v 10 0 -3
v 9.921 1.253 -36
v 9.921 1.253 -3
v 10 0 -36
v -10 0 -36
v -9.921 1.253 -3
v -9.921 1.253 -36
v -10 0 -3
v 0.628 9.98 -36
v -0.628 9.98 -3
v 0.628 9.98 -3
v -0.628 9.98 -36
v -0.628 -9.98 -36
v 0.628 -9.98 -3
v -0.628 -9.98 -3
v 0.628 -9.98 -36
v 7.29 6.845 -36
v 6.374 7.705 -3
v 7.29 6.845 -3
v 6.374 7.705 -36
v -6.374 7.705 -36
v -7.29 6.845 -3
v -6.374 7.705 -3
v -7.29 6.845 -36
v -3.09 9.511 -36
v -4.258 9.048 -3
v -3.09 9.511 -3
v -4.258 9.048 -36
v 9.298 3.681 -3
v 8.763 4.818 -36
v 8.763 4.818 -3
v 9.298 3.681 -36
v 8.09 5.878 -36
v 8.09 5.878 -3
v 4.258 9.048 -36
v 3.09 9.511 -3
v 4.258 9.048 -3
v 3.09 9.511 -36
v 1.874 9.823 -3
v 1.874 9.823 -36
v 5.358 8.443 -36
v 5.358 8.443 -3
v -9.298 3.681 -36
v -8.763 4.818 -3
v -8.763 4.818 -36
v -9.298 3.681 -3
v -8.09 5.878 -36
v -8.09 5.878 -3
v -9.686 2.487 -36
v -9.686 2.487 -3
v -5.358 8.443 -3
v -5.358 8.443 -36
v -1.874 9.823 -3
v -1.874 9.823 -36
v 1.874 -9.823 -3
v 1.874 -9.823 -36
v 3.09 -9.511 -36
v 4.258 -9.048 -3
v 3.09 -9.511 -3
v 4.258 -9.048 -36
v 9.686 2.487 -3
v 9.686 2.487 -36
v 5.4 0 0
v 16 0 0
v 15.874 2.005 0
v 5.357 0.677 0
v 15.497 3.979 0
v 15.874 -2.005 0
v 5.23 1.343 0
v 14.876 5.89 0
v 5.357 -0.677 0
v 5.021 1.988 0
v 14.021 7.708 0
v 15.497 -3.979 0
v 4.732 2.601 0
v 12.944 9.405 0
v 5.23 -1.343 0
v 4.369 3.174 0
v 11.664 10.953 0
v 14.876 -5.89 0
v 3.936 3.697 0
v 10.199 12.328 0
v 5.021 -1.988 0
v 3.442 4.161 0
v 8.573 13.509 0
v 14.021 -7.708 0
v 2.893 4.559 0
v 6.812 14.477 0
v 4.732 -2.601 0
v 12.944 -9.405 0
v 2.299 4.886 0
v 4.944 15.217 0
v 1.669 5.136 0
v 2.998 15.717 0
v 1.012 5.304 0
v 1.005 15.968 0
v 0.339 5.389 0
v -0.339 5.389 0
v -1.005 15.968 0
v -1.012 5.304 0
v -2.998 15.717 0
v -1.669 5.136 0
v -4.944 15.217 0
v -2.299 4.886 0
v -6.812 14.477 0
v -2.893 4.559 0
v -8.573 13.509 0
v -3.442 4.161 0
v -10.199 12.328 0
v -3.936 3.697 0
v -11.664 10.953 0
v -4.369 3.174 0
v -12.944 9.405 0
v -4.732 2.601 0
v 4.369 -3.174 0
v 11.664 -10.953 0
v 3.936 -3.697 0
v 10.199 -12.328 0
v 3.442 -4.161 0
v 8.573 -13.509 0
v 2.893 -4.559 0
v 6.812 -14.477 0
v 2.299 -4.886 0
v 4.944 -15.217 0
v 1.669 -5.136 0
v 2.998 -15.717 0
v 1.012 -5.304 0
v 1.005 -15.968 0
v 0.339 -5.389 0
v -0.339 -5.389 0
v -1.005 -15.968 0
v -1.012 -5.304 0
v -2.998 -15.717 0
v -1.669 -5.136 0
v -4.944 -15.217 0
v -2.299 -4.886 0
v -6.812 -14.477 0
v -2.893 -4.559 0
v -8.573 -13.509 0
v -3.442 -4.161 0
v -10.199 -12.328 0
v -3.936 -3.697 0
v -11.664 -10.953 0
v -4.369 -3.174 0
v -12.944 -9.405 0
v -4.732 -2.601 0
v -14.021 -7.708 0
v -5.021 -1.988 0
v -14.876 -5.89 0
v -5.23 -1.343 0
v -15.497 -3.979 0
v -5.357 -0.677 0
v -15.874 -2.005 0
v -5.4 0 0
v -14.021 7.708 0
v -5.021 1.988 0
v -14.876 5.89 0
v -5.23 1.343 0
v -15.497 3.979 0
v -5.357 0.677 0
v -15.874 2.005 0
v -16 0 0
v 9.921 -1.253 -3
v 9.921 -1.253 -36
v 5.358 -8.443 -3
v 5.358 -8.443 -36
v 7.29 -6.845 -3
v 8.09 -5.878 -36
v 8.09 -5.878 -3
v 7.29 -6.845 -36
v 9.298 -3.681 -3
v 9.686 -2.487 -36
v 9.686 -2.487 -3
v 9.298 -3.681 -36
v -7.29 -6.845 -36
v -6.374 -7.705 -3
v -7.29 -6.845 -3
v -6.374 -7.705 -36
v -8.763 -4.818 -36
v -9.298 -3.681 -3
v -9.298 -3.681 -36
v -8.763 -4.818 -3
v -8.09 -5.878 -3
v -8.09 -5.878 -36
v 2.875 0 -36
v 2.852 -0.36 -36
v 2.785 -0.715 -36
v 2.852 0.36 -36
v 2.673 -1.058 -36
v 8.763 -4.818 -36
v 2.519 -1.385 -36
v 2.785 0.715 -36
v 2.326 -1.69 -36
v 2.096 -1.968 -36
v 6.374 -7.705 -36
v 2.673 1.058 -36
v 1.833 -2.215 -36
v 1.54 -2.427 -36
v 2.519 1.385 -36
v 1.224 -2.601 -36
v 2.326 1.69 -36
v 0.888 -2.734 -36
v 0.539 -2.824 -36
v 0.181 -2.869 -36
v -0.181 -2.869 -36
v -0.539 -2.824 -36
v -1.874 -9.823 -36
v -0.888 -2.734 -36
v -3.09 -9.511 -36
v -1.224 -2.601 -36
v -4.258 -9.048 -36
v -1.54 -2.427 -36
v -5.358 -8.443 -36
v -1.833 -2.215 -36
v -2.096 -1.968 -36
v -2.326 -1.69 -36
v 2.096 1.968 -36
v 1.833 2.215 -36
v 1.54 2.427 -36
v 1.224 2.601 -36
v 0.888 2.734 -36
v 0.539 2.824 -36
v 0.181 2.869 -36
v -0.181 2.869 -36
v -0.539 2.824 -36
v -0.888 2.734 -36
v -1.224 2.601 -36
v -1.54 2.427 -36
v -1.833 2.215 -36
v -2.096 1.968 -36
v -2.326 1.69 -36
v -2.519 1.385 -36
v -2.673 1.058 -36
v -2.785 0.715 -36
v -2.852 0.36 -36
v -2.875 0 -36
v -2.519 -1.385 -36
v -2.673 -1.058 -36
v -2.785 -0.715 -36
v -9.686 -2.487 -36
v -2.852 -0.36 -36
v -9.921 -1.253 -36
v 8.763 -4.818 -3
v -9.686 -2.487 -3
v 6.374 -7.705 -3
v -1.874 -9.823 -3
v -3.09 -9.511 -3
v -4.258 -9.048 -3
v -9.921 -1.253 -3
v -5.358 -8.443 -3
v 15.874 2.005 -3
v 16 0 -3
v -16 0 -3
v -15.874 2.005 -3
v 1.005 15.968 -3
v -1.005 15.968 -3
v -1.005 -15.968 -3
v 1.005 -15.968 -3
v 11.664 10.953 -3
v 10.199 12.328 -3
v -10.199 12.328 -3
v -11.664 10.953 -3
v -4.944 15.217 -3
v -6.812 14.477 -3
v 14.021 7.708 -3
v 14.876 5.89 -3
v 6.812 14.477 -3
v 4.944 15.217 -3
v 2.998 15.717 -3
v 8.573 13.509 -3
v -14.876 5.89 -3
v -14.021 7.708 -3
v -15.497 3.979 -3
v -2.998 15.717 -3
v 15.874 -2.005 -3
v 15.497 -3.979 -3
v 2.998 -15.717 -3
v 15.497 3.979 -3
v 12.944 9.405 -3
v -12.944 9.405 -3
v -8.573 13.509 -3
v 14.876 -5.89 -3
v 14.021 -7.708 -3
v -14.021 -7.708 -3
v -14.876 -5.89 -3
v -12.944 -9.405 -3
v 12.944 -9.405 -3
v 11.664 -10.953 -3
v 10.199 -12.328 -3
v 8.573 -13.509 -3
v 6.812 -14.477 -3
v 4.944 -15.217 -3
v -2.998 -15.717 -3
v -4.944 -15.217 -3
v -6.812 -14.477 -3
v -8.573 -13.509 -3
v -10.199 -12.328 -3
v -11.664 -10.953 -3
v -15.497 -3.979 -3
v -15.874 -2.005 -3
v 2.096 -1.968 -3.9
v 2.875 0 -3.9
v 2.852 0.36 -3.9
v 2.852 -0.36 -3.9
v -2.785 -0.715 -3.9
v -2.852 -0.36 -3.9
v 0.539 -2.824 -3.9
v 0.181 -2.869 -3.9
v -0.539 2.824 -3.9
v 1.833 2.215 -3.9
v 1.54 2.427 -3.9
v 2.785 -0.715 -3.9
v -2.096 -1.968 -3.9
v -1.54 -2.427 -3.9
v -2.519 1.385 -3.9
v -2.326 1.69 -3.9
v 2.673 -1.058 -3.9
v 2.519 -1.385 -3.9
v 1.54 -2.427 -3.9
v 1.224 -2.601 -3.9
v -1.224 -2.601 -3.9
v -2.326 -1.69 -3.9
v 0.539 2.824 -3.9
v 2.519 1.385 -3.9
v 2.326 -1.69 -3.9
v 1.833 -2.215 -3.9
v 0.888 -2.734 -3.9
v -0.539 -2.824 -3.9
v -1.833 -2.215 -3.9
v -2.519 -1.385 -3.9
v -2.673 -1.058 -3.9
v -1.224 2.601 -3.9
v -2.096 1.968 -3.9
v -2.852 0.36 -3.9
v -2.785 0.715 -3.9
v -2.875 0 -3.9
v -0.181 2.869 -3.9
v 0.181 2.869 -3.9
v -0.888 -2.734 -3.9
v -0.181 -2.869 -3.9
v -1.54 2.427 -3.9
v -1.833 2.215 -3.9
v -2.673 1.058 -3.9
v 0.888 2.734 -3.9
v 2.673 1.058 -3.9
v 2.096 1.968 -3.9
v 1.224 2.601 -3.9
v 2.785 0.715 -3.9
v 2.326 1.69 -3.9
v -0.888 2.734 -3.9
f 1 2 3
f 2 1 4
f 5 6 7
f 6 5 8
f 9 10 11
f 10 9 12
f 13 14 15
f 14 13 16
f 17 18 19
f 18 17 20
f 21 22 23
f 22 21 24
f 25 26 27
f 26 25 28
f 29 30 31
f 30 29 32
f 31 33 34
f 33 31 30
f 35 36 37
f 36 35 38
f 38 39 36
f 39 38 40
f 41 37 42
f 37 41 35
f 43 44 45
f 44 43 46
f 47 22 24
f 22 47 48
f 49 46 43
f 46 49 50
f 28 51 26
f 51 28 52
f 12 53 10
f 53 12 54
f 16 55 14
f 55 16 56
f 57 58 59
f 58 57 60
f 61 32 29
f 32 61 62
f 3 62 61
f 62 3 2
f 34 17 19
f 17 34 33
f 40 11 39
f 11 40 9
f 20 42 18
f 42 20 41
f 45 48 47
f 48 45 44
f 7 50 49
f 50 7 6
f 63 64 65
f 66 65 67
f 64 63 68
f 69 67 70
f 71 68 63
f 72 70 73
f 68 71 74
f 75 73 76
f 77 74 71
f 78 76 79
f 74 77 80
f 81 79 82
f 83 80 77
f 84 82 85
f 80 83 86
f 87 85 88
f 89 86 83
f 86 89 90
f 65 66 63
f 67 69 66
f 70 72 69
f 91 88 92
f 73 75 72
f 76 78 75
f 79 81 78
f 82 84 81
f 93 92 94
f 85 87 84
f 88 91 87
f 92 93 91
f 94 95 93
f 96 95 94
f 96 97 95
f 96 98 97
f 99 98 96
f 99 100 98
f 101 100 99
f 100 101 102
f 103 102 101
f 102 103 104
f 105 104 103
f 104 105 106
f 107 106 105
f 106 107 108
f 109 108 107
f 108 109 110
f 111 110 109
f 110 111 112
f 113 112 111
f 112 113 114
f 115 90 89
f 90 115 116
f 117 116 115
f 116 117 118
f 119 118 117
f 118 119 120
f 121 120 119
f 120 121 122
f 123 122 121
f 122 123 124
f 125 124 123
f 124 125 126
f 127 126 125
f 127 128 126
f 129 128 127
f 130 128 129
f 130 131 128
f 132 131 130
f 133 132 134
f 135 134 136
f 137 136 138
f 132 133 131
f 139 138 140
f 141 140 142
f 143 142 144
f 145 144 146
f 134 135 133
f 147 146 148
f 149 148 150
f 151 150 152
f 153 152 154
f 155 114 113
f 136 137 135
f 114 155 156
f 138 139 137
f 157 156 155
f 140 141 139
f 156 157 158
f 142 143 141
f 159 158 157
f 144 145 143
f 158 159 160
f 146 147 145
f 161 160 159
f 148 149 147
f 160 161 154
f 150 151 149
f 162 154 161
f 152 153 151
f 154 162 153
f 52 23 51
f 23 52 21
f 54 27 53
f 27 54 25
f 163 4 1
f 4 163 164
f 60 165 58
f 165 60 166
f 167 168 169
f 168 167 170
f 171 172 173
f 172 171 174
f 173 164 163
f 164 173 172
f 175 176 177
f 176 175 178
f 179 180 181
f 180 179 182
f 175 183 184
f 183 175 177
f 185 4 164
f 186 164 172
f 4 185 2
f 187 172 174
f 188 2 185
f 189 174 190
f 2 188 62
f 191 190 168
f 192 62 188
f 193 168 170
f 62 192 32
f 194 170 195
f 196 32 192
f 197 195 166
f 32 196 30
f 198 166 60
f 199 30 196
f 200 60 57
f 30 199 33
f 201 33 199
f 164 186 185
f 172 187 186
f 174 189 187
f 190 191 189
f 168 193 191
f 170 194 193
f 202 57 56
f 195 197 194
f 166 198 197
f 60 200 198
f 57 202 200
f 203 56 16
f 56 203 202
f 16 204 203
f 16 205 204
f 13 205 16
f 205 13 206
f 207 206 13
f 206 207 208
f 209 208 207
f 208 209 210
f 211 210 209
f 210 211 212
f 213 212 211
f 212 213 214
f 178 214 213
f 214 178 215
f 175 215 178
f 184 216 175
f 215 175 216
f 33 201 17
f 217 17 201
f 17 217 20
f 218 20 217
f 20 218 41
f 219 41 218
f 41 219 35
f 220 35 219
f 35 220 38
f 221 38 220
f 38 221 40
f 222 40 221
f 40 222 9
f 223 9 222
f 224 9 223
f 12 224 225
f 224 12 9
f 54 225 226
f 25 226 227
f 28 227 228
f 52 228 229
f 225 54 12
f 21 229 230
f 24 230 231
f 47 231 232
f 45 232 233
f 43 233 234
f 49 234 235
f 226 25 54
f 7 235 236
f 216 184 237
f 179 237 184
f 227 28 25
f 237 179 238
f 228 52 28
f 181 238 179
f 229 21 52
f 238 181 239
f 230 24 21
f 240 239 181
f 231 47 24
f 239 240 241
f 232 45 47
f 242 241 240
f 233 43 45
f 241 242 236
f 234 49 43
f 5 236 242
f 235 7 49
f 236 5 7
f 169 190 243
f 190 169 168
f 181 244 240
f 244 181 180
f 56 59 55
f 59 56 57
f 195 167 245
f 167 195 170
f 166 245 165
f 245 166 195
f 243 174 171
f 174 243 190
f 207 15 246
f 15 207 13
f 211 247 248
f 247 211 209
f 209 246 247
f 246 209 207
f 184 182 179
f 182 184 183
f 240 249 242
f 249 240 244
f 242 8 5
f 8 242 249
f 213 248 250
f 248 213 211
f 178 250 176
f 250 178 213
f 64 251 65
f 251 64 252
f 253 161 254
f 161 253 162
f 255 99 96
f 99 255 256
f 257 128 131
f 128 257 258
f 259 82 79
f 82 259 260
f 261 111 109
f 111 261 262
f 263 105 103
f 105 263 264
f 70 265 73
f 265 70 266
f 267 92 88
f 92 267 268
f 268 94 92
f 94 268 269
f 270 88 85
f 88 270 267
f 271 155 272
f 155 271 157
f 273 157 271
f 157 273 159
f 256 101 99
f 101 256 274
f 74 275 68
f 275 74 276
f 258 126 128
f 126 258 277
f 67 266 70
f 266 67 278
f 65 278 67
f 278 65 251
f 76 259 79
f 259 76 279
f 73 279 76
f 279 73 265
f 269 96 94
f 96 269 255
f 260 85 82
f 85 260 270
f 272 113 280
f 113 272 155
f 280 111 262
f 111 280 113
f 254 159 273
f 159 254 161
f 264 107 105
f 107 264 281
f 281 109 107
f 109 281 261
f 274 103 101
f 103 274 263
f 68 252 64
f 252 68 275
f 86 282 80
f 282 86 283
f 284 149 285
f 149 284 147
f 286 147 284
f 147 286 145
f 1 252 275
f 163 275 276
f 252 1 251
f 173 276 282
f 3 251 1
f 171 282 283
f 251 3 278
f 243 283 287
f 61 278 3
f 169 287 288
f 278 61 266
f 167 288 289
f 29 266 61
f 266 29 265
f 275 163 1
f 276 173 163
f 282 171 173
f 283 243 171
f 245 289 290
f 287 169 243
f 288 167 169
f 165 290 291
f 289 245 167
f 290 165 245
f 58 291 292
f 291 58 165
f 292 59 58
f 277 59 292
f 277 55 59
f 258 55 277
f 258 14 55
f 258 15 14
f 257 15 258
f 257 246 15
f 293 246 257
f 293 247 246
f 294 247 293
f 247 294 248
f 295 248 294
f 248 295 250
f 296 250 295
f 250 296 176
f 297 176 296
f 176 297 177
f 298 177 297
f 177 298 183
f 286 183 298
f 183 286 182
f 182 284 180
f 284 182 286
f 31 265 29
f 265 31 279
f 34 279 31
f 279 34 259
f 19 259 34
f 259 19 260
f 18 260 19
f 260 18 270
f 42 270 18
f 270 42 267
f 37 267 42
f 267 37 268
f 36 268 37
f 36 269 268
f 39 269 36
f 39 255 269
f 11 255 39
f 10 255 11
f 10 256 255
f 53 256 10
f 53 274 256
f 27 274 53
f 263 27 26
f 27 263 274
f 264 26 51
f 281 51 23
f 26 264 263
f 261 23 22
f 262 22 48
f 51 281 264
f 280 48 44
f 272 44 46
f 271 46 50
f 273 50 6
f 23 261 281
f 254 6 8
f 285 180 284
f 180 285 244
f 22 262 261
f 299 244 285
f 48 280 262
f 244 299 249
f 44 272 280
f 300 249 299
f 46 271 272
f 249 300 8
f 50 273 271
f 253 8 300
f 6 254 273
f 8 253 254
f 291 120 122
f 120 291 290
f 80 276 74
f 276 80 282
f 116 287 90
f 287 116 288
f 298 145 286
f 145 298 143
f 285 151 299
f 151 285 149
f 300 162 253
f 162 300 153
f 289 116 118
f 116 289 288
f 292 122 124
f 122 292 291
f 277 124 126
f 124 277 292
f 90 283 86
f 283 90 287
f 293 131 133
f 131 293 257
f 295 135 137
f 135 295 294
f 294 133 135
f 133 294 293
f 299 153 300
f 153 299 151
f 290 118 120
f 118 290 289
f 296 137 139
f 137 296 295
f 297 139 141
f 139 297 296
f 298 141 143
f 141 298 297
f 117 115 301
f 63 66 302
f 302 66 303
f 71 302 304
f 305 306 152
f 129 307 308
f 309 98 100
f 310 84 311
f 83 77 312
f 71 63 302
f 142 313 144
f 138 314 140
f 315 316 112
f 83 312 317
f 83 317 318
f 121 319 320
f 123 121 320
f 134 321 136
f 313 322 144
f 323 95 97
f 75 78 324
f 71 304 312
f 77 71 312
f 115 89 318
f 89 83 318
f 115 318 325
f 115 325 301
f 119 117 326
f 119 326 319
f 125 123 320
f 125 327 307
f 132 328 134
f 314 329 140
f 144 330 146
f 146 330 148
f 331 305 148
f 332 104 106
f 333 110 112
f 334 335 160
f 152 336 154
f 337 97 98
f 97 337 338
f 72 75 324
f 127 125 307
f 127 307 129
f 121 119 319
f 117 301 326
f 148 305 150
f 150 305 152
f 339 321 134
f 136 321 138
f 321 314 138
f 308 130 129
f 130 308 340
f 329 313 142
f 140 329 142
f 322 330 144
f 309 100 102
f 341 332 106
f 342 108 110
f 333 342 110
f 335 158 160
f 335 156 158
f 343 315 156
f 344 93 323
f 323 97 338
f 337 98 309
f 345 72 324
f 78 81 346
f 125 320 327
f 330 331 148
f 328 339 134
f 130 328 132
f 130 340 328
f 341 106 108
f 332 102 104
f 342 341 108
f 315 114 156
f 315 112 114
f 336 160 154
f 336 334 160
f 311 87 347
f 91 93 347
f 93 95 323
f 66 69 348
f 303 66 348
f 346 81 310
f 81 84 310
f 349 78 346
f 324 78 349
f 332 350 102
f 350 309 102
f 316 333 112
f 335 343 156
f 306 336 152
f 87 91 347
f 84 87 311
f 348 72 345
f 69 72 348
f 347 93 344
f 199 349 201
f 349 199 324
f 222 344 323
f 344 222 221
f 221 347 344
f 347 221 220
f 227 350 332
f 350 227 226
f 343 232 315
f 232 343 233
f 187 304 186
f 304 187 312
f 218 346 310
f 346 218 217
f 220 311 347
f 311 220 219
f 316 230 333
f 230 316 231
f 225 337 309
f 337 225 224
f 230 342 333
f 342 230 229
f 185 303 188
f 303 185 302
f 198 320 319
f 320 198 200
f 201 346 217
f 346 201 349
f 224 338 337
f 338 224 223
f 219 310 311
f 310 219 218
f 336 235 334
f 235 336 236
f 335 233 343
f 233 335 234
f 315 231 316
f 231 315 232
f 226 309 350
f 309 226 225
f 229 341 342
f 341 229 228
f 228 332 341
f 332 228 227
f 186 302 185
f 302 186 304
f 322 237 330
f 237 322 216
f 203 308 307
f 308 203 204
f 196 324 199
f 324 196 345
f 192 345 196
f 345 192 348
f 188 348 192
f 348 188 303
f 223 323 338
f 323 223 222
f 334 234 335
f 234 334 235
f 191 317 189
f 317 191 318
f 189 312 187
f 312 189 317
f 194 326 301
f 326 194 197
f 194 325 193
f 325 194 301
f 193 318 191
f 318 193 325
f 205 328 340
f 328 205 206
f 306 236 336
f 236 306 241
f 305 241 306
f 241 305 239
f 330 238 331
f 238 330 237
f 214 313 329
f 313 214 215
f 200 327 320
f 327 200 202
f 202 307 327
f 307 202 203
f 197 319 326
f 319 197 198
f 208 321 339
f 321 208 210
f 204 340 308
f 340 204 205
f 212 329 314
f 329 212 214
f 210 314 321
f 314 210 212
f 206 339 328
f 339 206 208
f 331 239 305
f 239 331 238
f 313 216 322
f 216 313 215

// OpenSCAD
$fn = 50;


difference() {
	union() {
		translate(v = [0, 0, -36.0000000000]) {
			cylinder(h = 36, r = 10.0000000000);
		}
		translate(v = [0, 0, -3.0000000000]) {
			cylinder(h = 3, r = 16.0000000000);
		}
	}
	union() {
		translate(v = [0, 0, 0]) {
			rotate(a = [0, 0, 0]) {
				difference() {
					union() {
						#translate(v = [0, 0, -36.0000000000]) {
							cylinder(h = 36, r = 2.6000000000);
						}
						#translate(v = [0, 0, -3.9000000000]) {
							cylinder(h = 3.9000000000, r1 = 2.8750000000, r2 = 5.4000000000);
						}
						#translate(v = [0, 0, -36.0000000000]) {
							cylinder(h = 36, r = 2.8750000000);
						}
						#translate(v = [0, 0, -36.0000000000]) {
							cylinder(h = 36, r = 2.6000000000);
						}
					}
					union();
				}
			}
		}
	}
}
